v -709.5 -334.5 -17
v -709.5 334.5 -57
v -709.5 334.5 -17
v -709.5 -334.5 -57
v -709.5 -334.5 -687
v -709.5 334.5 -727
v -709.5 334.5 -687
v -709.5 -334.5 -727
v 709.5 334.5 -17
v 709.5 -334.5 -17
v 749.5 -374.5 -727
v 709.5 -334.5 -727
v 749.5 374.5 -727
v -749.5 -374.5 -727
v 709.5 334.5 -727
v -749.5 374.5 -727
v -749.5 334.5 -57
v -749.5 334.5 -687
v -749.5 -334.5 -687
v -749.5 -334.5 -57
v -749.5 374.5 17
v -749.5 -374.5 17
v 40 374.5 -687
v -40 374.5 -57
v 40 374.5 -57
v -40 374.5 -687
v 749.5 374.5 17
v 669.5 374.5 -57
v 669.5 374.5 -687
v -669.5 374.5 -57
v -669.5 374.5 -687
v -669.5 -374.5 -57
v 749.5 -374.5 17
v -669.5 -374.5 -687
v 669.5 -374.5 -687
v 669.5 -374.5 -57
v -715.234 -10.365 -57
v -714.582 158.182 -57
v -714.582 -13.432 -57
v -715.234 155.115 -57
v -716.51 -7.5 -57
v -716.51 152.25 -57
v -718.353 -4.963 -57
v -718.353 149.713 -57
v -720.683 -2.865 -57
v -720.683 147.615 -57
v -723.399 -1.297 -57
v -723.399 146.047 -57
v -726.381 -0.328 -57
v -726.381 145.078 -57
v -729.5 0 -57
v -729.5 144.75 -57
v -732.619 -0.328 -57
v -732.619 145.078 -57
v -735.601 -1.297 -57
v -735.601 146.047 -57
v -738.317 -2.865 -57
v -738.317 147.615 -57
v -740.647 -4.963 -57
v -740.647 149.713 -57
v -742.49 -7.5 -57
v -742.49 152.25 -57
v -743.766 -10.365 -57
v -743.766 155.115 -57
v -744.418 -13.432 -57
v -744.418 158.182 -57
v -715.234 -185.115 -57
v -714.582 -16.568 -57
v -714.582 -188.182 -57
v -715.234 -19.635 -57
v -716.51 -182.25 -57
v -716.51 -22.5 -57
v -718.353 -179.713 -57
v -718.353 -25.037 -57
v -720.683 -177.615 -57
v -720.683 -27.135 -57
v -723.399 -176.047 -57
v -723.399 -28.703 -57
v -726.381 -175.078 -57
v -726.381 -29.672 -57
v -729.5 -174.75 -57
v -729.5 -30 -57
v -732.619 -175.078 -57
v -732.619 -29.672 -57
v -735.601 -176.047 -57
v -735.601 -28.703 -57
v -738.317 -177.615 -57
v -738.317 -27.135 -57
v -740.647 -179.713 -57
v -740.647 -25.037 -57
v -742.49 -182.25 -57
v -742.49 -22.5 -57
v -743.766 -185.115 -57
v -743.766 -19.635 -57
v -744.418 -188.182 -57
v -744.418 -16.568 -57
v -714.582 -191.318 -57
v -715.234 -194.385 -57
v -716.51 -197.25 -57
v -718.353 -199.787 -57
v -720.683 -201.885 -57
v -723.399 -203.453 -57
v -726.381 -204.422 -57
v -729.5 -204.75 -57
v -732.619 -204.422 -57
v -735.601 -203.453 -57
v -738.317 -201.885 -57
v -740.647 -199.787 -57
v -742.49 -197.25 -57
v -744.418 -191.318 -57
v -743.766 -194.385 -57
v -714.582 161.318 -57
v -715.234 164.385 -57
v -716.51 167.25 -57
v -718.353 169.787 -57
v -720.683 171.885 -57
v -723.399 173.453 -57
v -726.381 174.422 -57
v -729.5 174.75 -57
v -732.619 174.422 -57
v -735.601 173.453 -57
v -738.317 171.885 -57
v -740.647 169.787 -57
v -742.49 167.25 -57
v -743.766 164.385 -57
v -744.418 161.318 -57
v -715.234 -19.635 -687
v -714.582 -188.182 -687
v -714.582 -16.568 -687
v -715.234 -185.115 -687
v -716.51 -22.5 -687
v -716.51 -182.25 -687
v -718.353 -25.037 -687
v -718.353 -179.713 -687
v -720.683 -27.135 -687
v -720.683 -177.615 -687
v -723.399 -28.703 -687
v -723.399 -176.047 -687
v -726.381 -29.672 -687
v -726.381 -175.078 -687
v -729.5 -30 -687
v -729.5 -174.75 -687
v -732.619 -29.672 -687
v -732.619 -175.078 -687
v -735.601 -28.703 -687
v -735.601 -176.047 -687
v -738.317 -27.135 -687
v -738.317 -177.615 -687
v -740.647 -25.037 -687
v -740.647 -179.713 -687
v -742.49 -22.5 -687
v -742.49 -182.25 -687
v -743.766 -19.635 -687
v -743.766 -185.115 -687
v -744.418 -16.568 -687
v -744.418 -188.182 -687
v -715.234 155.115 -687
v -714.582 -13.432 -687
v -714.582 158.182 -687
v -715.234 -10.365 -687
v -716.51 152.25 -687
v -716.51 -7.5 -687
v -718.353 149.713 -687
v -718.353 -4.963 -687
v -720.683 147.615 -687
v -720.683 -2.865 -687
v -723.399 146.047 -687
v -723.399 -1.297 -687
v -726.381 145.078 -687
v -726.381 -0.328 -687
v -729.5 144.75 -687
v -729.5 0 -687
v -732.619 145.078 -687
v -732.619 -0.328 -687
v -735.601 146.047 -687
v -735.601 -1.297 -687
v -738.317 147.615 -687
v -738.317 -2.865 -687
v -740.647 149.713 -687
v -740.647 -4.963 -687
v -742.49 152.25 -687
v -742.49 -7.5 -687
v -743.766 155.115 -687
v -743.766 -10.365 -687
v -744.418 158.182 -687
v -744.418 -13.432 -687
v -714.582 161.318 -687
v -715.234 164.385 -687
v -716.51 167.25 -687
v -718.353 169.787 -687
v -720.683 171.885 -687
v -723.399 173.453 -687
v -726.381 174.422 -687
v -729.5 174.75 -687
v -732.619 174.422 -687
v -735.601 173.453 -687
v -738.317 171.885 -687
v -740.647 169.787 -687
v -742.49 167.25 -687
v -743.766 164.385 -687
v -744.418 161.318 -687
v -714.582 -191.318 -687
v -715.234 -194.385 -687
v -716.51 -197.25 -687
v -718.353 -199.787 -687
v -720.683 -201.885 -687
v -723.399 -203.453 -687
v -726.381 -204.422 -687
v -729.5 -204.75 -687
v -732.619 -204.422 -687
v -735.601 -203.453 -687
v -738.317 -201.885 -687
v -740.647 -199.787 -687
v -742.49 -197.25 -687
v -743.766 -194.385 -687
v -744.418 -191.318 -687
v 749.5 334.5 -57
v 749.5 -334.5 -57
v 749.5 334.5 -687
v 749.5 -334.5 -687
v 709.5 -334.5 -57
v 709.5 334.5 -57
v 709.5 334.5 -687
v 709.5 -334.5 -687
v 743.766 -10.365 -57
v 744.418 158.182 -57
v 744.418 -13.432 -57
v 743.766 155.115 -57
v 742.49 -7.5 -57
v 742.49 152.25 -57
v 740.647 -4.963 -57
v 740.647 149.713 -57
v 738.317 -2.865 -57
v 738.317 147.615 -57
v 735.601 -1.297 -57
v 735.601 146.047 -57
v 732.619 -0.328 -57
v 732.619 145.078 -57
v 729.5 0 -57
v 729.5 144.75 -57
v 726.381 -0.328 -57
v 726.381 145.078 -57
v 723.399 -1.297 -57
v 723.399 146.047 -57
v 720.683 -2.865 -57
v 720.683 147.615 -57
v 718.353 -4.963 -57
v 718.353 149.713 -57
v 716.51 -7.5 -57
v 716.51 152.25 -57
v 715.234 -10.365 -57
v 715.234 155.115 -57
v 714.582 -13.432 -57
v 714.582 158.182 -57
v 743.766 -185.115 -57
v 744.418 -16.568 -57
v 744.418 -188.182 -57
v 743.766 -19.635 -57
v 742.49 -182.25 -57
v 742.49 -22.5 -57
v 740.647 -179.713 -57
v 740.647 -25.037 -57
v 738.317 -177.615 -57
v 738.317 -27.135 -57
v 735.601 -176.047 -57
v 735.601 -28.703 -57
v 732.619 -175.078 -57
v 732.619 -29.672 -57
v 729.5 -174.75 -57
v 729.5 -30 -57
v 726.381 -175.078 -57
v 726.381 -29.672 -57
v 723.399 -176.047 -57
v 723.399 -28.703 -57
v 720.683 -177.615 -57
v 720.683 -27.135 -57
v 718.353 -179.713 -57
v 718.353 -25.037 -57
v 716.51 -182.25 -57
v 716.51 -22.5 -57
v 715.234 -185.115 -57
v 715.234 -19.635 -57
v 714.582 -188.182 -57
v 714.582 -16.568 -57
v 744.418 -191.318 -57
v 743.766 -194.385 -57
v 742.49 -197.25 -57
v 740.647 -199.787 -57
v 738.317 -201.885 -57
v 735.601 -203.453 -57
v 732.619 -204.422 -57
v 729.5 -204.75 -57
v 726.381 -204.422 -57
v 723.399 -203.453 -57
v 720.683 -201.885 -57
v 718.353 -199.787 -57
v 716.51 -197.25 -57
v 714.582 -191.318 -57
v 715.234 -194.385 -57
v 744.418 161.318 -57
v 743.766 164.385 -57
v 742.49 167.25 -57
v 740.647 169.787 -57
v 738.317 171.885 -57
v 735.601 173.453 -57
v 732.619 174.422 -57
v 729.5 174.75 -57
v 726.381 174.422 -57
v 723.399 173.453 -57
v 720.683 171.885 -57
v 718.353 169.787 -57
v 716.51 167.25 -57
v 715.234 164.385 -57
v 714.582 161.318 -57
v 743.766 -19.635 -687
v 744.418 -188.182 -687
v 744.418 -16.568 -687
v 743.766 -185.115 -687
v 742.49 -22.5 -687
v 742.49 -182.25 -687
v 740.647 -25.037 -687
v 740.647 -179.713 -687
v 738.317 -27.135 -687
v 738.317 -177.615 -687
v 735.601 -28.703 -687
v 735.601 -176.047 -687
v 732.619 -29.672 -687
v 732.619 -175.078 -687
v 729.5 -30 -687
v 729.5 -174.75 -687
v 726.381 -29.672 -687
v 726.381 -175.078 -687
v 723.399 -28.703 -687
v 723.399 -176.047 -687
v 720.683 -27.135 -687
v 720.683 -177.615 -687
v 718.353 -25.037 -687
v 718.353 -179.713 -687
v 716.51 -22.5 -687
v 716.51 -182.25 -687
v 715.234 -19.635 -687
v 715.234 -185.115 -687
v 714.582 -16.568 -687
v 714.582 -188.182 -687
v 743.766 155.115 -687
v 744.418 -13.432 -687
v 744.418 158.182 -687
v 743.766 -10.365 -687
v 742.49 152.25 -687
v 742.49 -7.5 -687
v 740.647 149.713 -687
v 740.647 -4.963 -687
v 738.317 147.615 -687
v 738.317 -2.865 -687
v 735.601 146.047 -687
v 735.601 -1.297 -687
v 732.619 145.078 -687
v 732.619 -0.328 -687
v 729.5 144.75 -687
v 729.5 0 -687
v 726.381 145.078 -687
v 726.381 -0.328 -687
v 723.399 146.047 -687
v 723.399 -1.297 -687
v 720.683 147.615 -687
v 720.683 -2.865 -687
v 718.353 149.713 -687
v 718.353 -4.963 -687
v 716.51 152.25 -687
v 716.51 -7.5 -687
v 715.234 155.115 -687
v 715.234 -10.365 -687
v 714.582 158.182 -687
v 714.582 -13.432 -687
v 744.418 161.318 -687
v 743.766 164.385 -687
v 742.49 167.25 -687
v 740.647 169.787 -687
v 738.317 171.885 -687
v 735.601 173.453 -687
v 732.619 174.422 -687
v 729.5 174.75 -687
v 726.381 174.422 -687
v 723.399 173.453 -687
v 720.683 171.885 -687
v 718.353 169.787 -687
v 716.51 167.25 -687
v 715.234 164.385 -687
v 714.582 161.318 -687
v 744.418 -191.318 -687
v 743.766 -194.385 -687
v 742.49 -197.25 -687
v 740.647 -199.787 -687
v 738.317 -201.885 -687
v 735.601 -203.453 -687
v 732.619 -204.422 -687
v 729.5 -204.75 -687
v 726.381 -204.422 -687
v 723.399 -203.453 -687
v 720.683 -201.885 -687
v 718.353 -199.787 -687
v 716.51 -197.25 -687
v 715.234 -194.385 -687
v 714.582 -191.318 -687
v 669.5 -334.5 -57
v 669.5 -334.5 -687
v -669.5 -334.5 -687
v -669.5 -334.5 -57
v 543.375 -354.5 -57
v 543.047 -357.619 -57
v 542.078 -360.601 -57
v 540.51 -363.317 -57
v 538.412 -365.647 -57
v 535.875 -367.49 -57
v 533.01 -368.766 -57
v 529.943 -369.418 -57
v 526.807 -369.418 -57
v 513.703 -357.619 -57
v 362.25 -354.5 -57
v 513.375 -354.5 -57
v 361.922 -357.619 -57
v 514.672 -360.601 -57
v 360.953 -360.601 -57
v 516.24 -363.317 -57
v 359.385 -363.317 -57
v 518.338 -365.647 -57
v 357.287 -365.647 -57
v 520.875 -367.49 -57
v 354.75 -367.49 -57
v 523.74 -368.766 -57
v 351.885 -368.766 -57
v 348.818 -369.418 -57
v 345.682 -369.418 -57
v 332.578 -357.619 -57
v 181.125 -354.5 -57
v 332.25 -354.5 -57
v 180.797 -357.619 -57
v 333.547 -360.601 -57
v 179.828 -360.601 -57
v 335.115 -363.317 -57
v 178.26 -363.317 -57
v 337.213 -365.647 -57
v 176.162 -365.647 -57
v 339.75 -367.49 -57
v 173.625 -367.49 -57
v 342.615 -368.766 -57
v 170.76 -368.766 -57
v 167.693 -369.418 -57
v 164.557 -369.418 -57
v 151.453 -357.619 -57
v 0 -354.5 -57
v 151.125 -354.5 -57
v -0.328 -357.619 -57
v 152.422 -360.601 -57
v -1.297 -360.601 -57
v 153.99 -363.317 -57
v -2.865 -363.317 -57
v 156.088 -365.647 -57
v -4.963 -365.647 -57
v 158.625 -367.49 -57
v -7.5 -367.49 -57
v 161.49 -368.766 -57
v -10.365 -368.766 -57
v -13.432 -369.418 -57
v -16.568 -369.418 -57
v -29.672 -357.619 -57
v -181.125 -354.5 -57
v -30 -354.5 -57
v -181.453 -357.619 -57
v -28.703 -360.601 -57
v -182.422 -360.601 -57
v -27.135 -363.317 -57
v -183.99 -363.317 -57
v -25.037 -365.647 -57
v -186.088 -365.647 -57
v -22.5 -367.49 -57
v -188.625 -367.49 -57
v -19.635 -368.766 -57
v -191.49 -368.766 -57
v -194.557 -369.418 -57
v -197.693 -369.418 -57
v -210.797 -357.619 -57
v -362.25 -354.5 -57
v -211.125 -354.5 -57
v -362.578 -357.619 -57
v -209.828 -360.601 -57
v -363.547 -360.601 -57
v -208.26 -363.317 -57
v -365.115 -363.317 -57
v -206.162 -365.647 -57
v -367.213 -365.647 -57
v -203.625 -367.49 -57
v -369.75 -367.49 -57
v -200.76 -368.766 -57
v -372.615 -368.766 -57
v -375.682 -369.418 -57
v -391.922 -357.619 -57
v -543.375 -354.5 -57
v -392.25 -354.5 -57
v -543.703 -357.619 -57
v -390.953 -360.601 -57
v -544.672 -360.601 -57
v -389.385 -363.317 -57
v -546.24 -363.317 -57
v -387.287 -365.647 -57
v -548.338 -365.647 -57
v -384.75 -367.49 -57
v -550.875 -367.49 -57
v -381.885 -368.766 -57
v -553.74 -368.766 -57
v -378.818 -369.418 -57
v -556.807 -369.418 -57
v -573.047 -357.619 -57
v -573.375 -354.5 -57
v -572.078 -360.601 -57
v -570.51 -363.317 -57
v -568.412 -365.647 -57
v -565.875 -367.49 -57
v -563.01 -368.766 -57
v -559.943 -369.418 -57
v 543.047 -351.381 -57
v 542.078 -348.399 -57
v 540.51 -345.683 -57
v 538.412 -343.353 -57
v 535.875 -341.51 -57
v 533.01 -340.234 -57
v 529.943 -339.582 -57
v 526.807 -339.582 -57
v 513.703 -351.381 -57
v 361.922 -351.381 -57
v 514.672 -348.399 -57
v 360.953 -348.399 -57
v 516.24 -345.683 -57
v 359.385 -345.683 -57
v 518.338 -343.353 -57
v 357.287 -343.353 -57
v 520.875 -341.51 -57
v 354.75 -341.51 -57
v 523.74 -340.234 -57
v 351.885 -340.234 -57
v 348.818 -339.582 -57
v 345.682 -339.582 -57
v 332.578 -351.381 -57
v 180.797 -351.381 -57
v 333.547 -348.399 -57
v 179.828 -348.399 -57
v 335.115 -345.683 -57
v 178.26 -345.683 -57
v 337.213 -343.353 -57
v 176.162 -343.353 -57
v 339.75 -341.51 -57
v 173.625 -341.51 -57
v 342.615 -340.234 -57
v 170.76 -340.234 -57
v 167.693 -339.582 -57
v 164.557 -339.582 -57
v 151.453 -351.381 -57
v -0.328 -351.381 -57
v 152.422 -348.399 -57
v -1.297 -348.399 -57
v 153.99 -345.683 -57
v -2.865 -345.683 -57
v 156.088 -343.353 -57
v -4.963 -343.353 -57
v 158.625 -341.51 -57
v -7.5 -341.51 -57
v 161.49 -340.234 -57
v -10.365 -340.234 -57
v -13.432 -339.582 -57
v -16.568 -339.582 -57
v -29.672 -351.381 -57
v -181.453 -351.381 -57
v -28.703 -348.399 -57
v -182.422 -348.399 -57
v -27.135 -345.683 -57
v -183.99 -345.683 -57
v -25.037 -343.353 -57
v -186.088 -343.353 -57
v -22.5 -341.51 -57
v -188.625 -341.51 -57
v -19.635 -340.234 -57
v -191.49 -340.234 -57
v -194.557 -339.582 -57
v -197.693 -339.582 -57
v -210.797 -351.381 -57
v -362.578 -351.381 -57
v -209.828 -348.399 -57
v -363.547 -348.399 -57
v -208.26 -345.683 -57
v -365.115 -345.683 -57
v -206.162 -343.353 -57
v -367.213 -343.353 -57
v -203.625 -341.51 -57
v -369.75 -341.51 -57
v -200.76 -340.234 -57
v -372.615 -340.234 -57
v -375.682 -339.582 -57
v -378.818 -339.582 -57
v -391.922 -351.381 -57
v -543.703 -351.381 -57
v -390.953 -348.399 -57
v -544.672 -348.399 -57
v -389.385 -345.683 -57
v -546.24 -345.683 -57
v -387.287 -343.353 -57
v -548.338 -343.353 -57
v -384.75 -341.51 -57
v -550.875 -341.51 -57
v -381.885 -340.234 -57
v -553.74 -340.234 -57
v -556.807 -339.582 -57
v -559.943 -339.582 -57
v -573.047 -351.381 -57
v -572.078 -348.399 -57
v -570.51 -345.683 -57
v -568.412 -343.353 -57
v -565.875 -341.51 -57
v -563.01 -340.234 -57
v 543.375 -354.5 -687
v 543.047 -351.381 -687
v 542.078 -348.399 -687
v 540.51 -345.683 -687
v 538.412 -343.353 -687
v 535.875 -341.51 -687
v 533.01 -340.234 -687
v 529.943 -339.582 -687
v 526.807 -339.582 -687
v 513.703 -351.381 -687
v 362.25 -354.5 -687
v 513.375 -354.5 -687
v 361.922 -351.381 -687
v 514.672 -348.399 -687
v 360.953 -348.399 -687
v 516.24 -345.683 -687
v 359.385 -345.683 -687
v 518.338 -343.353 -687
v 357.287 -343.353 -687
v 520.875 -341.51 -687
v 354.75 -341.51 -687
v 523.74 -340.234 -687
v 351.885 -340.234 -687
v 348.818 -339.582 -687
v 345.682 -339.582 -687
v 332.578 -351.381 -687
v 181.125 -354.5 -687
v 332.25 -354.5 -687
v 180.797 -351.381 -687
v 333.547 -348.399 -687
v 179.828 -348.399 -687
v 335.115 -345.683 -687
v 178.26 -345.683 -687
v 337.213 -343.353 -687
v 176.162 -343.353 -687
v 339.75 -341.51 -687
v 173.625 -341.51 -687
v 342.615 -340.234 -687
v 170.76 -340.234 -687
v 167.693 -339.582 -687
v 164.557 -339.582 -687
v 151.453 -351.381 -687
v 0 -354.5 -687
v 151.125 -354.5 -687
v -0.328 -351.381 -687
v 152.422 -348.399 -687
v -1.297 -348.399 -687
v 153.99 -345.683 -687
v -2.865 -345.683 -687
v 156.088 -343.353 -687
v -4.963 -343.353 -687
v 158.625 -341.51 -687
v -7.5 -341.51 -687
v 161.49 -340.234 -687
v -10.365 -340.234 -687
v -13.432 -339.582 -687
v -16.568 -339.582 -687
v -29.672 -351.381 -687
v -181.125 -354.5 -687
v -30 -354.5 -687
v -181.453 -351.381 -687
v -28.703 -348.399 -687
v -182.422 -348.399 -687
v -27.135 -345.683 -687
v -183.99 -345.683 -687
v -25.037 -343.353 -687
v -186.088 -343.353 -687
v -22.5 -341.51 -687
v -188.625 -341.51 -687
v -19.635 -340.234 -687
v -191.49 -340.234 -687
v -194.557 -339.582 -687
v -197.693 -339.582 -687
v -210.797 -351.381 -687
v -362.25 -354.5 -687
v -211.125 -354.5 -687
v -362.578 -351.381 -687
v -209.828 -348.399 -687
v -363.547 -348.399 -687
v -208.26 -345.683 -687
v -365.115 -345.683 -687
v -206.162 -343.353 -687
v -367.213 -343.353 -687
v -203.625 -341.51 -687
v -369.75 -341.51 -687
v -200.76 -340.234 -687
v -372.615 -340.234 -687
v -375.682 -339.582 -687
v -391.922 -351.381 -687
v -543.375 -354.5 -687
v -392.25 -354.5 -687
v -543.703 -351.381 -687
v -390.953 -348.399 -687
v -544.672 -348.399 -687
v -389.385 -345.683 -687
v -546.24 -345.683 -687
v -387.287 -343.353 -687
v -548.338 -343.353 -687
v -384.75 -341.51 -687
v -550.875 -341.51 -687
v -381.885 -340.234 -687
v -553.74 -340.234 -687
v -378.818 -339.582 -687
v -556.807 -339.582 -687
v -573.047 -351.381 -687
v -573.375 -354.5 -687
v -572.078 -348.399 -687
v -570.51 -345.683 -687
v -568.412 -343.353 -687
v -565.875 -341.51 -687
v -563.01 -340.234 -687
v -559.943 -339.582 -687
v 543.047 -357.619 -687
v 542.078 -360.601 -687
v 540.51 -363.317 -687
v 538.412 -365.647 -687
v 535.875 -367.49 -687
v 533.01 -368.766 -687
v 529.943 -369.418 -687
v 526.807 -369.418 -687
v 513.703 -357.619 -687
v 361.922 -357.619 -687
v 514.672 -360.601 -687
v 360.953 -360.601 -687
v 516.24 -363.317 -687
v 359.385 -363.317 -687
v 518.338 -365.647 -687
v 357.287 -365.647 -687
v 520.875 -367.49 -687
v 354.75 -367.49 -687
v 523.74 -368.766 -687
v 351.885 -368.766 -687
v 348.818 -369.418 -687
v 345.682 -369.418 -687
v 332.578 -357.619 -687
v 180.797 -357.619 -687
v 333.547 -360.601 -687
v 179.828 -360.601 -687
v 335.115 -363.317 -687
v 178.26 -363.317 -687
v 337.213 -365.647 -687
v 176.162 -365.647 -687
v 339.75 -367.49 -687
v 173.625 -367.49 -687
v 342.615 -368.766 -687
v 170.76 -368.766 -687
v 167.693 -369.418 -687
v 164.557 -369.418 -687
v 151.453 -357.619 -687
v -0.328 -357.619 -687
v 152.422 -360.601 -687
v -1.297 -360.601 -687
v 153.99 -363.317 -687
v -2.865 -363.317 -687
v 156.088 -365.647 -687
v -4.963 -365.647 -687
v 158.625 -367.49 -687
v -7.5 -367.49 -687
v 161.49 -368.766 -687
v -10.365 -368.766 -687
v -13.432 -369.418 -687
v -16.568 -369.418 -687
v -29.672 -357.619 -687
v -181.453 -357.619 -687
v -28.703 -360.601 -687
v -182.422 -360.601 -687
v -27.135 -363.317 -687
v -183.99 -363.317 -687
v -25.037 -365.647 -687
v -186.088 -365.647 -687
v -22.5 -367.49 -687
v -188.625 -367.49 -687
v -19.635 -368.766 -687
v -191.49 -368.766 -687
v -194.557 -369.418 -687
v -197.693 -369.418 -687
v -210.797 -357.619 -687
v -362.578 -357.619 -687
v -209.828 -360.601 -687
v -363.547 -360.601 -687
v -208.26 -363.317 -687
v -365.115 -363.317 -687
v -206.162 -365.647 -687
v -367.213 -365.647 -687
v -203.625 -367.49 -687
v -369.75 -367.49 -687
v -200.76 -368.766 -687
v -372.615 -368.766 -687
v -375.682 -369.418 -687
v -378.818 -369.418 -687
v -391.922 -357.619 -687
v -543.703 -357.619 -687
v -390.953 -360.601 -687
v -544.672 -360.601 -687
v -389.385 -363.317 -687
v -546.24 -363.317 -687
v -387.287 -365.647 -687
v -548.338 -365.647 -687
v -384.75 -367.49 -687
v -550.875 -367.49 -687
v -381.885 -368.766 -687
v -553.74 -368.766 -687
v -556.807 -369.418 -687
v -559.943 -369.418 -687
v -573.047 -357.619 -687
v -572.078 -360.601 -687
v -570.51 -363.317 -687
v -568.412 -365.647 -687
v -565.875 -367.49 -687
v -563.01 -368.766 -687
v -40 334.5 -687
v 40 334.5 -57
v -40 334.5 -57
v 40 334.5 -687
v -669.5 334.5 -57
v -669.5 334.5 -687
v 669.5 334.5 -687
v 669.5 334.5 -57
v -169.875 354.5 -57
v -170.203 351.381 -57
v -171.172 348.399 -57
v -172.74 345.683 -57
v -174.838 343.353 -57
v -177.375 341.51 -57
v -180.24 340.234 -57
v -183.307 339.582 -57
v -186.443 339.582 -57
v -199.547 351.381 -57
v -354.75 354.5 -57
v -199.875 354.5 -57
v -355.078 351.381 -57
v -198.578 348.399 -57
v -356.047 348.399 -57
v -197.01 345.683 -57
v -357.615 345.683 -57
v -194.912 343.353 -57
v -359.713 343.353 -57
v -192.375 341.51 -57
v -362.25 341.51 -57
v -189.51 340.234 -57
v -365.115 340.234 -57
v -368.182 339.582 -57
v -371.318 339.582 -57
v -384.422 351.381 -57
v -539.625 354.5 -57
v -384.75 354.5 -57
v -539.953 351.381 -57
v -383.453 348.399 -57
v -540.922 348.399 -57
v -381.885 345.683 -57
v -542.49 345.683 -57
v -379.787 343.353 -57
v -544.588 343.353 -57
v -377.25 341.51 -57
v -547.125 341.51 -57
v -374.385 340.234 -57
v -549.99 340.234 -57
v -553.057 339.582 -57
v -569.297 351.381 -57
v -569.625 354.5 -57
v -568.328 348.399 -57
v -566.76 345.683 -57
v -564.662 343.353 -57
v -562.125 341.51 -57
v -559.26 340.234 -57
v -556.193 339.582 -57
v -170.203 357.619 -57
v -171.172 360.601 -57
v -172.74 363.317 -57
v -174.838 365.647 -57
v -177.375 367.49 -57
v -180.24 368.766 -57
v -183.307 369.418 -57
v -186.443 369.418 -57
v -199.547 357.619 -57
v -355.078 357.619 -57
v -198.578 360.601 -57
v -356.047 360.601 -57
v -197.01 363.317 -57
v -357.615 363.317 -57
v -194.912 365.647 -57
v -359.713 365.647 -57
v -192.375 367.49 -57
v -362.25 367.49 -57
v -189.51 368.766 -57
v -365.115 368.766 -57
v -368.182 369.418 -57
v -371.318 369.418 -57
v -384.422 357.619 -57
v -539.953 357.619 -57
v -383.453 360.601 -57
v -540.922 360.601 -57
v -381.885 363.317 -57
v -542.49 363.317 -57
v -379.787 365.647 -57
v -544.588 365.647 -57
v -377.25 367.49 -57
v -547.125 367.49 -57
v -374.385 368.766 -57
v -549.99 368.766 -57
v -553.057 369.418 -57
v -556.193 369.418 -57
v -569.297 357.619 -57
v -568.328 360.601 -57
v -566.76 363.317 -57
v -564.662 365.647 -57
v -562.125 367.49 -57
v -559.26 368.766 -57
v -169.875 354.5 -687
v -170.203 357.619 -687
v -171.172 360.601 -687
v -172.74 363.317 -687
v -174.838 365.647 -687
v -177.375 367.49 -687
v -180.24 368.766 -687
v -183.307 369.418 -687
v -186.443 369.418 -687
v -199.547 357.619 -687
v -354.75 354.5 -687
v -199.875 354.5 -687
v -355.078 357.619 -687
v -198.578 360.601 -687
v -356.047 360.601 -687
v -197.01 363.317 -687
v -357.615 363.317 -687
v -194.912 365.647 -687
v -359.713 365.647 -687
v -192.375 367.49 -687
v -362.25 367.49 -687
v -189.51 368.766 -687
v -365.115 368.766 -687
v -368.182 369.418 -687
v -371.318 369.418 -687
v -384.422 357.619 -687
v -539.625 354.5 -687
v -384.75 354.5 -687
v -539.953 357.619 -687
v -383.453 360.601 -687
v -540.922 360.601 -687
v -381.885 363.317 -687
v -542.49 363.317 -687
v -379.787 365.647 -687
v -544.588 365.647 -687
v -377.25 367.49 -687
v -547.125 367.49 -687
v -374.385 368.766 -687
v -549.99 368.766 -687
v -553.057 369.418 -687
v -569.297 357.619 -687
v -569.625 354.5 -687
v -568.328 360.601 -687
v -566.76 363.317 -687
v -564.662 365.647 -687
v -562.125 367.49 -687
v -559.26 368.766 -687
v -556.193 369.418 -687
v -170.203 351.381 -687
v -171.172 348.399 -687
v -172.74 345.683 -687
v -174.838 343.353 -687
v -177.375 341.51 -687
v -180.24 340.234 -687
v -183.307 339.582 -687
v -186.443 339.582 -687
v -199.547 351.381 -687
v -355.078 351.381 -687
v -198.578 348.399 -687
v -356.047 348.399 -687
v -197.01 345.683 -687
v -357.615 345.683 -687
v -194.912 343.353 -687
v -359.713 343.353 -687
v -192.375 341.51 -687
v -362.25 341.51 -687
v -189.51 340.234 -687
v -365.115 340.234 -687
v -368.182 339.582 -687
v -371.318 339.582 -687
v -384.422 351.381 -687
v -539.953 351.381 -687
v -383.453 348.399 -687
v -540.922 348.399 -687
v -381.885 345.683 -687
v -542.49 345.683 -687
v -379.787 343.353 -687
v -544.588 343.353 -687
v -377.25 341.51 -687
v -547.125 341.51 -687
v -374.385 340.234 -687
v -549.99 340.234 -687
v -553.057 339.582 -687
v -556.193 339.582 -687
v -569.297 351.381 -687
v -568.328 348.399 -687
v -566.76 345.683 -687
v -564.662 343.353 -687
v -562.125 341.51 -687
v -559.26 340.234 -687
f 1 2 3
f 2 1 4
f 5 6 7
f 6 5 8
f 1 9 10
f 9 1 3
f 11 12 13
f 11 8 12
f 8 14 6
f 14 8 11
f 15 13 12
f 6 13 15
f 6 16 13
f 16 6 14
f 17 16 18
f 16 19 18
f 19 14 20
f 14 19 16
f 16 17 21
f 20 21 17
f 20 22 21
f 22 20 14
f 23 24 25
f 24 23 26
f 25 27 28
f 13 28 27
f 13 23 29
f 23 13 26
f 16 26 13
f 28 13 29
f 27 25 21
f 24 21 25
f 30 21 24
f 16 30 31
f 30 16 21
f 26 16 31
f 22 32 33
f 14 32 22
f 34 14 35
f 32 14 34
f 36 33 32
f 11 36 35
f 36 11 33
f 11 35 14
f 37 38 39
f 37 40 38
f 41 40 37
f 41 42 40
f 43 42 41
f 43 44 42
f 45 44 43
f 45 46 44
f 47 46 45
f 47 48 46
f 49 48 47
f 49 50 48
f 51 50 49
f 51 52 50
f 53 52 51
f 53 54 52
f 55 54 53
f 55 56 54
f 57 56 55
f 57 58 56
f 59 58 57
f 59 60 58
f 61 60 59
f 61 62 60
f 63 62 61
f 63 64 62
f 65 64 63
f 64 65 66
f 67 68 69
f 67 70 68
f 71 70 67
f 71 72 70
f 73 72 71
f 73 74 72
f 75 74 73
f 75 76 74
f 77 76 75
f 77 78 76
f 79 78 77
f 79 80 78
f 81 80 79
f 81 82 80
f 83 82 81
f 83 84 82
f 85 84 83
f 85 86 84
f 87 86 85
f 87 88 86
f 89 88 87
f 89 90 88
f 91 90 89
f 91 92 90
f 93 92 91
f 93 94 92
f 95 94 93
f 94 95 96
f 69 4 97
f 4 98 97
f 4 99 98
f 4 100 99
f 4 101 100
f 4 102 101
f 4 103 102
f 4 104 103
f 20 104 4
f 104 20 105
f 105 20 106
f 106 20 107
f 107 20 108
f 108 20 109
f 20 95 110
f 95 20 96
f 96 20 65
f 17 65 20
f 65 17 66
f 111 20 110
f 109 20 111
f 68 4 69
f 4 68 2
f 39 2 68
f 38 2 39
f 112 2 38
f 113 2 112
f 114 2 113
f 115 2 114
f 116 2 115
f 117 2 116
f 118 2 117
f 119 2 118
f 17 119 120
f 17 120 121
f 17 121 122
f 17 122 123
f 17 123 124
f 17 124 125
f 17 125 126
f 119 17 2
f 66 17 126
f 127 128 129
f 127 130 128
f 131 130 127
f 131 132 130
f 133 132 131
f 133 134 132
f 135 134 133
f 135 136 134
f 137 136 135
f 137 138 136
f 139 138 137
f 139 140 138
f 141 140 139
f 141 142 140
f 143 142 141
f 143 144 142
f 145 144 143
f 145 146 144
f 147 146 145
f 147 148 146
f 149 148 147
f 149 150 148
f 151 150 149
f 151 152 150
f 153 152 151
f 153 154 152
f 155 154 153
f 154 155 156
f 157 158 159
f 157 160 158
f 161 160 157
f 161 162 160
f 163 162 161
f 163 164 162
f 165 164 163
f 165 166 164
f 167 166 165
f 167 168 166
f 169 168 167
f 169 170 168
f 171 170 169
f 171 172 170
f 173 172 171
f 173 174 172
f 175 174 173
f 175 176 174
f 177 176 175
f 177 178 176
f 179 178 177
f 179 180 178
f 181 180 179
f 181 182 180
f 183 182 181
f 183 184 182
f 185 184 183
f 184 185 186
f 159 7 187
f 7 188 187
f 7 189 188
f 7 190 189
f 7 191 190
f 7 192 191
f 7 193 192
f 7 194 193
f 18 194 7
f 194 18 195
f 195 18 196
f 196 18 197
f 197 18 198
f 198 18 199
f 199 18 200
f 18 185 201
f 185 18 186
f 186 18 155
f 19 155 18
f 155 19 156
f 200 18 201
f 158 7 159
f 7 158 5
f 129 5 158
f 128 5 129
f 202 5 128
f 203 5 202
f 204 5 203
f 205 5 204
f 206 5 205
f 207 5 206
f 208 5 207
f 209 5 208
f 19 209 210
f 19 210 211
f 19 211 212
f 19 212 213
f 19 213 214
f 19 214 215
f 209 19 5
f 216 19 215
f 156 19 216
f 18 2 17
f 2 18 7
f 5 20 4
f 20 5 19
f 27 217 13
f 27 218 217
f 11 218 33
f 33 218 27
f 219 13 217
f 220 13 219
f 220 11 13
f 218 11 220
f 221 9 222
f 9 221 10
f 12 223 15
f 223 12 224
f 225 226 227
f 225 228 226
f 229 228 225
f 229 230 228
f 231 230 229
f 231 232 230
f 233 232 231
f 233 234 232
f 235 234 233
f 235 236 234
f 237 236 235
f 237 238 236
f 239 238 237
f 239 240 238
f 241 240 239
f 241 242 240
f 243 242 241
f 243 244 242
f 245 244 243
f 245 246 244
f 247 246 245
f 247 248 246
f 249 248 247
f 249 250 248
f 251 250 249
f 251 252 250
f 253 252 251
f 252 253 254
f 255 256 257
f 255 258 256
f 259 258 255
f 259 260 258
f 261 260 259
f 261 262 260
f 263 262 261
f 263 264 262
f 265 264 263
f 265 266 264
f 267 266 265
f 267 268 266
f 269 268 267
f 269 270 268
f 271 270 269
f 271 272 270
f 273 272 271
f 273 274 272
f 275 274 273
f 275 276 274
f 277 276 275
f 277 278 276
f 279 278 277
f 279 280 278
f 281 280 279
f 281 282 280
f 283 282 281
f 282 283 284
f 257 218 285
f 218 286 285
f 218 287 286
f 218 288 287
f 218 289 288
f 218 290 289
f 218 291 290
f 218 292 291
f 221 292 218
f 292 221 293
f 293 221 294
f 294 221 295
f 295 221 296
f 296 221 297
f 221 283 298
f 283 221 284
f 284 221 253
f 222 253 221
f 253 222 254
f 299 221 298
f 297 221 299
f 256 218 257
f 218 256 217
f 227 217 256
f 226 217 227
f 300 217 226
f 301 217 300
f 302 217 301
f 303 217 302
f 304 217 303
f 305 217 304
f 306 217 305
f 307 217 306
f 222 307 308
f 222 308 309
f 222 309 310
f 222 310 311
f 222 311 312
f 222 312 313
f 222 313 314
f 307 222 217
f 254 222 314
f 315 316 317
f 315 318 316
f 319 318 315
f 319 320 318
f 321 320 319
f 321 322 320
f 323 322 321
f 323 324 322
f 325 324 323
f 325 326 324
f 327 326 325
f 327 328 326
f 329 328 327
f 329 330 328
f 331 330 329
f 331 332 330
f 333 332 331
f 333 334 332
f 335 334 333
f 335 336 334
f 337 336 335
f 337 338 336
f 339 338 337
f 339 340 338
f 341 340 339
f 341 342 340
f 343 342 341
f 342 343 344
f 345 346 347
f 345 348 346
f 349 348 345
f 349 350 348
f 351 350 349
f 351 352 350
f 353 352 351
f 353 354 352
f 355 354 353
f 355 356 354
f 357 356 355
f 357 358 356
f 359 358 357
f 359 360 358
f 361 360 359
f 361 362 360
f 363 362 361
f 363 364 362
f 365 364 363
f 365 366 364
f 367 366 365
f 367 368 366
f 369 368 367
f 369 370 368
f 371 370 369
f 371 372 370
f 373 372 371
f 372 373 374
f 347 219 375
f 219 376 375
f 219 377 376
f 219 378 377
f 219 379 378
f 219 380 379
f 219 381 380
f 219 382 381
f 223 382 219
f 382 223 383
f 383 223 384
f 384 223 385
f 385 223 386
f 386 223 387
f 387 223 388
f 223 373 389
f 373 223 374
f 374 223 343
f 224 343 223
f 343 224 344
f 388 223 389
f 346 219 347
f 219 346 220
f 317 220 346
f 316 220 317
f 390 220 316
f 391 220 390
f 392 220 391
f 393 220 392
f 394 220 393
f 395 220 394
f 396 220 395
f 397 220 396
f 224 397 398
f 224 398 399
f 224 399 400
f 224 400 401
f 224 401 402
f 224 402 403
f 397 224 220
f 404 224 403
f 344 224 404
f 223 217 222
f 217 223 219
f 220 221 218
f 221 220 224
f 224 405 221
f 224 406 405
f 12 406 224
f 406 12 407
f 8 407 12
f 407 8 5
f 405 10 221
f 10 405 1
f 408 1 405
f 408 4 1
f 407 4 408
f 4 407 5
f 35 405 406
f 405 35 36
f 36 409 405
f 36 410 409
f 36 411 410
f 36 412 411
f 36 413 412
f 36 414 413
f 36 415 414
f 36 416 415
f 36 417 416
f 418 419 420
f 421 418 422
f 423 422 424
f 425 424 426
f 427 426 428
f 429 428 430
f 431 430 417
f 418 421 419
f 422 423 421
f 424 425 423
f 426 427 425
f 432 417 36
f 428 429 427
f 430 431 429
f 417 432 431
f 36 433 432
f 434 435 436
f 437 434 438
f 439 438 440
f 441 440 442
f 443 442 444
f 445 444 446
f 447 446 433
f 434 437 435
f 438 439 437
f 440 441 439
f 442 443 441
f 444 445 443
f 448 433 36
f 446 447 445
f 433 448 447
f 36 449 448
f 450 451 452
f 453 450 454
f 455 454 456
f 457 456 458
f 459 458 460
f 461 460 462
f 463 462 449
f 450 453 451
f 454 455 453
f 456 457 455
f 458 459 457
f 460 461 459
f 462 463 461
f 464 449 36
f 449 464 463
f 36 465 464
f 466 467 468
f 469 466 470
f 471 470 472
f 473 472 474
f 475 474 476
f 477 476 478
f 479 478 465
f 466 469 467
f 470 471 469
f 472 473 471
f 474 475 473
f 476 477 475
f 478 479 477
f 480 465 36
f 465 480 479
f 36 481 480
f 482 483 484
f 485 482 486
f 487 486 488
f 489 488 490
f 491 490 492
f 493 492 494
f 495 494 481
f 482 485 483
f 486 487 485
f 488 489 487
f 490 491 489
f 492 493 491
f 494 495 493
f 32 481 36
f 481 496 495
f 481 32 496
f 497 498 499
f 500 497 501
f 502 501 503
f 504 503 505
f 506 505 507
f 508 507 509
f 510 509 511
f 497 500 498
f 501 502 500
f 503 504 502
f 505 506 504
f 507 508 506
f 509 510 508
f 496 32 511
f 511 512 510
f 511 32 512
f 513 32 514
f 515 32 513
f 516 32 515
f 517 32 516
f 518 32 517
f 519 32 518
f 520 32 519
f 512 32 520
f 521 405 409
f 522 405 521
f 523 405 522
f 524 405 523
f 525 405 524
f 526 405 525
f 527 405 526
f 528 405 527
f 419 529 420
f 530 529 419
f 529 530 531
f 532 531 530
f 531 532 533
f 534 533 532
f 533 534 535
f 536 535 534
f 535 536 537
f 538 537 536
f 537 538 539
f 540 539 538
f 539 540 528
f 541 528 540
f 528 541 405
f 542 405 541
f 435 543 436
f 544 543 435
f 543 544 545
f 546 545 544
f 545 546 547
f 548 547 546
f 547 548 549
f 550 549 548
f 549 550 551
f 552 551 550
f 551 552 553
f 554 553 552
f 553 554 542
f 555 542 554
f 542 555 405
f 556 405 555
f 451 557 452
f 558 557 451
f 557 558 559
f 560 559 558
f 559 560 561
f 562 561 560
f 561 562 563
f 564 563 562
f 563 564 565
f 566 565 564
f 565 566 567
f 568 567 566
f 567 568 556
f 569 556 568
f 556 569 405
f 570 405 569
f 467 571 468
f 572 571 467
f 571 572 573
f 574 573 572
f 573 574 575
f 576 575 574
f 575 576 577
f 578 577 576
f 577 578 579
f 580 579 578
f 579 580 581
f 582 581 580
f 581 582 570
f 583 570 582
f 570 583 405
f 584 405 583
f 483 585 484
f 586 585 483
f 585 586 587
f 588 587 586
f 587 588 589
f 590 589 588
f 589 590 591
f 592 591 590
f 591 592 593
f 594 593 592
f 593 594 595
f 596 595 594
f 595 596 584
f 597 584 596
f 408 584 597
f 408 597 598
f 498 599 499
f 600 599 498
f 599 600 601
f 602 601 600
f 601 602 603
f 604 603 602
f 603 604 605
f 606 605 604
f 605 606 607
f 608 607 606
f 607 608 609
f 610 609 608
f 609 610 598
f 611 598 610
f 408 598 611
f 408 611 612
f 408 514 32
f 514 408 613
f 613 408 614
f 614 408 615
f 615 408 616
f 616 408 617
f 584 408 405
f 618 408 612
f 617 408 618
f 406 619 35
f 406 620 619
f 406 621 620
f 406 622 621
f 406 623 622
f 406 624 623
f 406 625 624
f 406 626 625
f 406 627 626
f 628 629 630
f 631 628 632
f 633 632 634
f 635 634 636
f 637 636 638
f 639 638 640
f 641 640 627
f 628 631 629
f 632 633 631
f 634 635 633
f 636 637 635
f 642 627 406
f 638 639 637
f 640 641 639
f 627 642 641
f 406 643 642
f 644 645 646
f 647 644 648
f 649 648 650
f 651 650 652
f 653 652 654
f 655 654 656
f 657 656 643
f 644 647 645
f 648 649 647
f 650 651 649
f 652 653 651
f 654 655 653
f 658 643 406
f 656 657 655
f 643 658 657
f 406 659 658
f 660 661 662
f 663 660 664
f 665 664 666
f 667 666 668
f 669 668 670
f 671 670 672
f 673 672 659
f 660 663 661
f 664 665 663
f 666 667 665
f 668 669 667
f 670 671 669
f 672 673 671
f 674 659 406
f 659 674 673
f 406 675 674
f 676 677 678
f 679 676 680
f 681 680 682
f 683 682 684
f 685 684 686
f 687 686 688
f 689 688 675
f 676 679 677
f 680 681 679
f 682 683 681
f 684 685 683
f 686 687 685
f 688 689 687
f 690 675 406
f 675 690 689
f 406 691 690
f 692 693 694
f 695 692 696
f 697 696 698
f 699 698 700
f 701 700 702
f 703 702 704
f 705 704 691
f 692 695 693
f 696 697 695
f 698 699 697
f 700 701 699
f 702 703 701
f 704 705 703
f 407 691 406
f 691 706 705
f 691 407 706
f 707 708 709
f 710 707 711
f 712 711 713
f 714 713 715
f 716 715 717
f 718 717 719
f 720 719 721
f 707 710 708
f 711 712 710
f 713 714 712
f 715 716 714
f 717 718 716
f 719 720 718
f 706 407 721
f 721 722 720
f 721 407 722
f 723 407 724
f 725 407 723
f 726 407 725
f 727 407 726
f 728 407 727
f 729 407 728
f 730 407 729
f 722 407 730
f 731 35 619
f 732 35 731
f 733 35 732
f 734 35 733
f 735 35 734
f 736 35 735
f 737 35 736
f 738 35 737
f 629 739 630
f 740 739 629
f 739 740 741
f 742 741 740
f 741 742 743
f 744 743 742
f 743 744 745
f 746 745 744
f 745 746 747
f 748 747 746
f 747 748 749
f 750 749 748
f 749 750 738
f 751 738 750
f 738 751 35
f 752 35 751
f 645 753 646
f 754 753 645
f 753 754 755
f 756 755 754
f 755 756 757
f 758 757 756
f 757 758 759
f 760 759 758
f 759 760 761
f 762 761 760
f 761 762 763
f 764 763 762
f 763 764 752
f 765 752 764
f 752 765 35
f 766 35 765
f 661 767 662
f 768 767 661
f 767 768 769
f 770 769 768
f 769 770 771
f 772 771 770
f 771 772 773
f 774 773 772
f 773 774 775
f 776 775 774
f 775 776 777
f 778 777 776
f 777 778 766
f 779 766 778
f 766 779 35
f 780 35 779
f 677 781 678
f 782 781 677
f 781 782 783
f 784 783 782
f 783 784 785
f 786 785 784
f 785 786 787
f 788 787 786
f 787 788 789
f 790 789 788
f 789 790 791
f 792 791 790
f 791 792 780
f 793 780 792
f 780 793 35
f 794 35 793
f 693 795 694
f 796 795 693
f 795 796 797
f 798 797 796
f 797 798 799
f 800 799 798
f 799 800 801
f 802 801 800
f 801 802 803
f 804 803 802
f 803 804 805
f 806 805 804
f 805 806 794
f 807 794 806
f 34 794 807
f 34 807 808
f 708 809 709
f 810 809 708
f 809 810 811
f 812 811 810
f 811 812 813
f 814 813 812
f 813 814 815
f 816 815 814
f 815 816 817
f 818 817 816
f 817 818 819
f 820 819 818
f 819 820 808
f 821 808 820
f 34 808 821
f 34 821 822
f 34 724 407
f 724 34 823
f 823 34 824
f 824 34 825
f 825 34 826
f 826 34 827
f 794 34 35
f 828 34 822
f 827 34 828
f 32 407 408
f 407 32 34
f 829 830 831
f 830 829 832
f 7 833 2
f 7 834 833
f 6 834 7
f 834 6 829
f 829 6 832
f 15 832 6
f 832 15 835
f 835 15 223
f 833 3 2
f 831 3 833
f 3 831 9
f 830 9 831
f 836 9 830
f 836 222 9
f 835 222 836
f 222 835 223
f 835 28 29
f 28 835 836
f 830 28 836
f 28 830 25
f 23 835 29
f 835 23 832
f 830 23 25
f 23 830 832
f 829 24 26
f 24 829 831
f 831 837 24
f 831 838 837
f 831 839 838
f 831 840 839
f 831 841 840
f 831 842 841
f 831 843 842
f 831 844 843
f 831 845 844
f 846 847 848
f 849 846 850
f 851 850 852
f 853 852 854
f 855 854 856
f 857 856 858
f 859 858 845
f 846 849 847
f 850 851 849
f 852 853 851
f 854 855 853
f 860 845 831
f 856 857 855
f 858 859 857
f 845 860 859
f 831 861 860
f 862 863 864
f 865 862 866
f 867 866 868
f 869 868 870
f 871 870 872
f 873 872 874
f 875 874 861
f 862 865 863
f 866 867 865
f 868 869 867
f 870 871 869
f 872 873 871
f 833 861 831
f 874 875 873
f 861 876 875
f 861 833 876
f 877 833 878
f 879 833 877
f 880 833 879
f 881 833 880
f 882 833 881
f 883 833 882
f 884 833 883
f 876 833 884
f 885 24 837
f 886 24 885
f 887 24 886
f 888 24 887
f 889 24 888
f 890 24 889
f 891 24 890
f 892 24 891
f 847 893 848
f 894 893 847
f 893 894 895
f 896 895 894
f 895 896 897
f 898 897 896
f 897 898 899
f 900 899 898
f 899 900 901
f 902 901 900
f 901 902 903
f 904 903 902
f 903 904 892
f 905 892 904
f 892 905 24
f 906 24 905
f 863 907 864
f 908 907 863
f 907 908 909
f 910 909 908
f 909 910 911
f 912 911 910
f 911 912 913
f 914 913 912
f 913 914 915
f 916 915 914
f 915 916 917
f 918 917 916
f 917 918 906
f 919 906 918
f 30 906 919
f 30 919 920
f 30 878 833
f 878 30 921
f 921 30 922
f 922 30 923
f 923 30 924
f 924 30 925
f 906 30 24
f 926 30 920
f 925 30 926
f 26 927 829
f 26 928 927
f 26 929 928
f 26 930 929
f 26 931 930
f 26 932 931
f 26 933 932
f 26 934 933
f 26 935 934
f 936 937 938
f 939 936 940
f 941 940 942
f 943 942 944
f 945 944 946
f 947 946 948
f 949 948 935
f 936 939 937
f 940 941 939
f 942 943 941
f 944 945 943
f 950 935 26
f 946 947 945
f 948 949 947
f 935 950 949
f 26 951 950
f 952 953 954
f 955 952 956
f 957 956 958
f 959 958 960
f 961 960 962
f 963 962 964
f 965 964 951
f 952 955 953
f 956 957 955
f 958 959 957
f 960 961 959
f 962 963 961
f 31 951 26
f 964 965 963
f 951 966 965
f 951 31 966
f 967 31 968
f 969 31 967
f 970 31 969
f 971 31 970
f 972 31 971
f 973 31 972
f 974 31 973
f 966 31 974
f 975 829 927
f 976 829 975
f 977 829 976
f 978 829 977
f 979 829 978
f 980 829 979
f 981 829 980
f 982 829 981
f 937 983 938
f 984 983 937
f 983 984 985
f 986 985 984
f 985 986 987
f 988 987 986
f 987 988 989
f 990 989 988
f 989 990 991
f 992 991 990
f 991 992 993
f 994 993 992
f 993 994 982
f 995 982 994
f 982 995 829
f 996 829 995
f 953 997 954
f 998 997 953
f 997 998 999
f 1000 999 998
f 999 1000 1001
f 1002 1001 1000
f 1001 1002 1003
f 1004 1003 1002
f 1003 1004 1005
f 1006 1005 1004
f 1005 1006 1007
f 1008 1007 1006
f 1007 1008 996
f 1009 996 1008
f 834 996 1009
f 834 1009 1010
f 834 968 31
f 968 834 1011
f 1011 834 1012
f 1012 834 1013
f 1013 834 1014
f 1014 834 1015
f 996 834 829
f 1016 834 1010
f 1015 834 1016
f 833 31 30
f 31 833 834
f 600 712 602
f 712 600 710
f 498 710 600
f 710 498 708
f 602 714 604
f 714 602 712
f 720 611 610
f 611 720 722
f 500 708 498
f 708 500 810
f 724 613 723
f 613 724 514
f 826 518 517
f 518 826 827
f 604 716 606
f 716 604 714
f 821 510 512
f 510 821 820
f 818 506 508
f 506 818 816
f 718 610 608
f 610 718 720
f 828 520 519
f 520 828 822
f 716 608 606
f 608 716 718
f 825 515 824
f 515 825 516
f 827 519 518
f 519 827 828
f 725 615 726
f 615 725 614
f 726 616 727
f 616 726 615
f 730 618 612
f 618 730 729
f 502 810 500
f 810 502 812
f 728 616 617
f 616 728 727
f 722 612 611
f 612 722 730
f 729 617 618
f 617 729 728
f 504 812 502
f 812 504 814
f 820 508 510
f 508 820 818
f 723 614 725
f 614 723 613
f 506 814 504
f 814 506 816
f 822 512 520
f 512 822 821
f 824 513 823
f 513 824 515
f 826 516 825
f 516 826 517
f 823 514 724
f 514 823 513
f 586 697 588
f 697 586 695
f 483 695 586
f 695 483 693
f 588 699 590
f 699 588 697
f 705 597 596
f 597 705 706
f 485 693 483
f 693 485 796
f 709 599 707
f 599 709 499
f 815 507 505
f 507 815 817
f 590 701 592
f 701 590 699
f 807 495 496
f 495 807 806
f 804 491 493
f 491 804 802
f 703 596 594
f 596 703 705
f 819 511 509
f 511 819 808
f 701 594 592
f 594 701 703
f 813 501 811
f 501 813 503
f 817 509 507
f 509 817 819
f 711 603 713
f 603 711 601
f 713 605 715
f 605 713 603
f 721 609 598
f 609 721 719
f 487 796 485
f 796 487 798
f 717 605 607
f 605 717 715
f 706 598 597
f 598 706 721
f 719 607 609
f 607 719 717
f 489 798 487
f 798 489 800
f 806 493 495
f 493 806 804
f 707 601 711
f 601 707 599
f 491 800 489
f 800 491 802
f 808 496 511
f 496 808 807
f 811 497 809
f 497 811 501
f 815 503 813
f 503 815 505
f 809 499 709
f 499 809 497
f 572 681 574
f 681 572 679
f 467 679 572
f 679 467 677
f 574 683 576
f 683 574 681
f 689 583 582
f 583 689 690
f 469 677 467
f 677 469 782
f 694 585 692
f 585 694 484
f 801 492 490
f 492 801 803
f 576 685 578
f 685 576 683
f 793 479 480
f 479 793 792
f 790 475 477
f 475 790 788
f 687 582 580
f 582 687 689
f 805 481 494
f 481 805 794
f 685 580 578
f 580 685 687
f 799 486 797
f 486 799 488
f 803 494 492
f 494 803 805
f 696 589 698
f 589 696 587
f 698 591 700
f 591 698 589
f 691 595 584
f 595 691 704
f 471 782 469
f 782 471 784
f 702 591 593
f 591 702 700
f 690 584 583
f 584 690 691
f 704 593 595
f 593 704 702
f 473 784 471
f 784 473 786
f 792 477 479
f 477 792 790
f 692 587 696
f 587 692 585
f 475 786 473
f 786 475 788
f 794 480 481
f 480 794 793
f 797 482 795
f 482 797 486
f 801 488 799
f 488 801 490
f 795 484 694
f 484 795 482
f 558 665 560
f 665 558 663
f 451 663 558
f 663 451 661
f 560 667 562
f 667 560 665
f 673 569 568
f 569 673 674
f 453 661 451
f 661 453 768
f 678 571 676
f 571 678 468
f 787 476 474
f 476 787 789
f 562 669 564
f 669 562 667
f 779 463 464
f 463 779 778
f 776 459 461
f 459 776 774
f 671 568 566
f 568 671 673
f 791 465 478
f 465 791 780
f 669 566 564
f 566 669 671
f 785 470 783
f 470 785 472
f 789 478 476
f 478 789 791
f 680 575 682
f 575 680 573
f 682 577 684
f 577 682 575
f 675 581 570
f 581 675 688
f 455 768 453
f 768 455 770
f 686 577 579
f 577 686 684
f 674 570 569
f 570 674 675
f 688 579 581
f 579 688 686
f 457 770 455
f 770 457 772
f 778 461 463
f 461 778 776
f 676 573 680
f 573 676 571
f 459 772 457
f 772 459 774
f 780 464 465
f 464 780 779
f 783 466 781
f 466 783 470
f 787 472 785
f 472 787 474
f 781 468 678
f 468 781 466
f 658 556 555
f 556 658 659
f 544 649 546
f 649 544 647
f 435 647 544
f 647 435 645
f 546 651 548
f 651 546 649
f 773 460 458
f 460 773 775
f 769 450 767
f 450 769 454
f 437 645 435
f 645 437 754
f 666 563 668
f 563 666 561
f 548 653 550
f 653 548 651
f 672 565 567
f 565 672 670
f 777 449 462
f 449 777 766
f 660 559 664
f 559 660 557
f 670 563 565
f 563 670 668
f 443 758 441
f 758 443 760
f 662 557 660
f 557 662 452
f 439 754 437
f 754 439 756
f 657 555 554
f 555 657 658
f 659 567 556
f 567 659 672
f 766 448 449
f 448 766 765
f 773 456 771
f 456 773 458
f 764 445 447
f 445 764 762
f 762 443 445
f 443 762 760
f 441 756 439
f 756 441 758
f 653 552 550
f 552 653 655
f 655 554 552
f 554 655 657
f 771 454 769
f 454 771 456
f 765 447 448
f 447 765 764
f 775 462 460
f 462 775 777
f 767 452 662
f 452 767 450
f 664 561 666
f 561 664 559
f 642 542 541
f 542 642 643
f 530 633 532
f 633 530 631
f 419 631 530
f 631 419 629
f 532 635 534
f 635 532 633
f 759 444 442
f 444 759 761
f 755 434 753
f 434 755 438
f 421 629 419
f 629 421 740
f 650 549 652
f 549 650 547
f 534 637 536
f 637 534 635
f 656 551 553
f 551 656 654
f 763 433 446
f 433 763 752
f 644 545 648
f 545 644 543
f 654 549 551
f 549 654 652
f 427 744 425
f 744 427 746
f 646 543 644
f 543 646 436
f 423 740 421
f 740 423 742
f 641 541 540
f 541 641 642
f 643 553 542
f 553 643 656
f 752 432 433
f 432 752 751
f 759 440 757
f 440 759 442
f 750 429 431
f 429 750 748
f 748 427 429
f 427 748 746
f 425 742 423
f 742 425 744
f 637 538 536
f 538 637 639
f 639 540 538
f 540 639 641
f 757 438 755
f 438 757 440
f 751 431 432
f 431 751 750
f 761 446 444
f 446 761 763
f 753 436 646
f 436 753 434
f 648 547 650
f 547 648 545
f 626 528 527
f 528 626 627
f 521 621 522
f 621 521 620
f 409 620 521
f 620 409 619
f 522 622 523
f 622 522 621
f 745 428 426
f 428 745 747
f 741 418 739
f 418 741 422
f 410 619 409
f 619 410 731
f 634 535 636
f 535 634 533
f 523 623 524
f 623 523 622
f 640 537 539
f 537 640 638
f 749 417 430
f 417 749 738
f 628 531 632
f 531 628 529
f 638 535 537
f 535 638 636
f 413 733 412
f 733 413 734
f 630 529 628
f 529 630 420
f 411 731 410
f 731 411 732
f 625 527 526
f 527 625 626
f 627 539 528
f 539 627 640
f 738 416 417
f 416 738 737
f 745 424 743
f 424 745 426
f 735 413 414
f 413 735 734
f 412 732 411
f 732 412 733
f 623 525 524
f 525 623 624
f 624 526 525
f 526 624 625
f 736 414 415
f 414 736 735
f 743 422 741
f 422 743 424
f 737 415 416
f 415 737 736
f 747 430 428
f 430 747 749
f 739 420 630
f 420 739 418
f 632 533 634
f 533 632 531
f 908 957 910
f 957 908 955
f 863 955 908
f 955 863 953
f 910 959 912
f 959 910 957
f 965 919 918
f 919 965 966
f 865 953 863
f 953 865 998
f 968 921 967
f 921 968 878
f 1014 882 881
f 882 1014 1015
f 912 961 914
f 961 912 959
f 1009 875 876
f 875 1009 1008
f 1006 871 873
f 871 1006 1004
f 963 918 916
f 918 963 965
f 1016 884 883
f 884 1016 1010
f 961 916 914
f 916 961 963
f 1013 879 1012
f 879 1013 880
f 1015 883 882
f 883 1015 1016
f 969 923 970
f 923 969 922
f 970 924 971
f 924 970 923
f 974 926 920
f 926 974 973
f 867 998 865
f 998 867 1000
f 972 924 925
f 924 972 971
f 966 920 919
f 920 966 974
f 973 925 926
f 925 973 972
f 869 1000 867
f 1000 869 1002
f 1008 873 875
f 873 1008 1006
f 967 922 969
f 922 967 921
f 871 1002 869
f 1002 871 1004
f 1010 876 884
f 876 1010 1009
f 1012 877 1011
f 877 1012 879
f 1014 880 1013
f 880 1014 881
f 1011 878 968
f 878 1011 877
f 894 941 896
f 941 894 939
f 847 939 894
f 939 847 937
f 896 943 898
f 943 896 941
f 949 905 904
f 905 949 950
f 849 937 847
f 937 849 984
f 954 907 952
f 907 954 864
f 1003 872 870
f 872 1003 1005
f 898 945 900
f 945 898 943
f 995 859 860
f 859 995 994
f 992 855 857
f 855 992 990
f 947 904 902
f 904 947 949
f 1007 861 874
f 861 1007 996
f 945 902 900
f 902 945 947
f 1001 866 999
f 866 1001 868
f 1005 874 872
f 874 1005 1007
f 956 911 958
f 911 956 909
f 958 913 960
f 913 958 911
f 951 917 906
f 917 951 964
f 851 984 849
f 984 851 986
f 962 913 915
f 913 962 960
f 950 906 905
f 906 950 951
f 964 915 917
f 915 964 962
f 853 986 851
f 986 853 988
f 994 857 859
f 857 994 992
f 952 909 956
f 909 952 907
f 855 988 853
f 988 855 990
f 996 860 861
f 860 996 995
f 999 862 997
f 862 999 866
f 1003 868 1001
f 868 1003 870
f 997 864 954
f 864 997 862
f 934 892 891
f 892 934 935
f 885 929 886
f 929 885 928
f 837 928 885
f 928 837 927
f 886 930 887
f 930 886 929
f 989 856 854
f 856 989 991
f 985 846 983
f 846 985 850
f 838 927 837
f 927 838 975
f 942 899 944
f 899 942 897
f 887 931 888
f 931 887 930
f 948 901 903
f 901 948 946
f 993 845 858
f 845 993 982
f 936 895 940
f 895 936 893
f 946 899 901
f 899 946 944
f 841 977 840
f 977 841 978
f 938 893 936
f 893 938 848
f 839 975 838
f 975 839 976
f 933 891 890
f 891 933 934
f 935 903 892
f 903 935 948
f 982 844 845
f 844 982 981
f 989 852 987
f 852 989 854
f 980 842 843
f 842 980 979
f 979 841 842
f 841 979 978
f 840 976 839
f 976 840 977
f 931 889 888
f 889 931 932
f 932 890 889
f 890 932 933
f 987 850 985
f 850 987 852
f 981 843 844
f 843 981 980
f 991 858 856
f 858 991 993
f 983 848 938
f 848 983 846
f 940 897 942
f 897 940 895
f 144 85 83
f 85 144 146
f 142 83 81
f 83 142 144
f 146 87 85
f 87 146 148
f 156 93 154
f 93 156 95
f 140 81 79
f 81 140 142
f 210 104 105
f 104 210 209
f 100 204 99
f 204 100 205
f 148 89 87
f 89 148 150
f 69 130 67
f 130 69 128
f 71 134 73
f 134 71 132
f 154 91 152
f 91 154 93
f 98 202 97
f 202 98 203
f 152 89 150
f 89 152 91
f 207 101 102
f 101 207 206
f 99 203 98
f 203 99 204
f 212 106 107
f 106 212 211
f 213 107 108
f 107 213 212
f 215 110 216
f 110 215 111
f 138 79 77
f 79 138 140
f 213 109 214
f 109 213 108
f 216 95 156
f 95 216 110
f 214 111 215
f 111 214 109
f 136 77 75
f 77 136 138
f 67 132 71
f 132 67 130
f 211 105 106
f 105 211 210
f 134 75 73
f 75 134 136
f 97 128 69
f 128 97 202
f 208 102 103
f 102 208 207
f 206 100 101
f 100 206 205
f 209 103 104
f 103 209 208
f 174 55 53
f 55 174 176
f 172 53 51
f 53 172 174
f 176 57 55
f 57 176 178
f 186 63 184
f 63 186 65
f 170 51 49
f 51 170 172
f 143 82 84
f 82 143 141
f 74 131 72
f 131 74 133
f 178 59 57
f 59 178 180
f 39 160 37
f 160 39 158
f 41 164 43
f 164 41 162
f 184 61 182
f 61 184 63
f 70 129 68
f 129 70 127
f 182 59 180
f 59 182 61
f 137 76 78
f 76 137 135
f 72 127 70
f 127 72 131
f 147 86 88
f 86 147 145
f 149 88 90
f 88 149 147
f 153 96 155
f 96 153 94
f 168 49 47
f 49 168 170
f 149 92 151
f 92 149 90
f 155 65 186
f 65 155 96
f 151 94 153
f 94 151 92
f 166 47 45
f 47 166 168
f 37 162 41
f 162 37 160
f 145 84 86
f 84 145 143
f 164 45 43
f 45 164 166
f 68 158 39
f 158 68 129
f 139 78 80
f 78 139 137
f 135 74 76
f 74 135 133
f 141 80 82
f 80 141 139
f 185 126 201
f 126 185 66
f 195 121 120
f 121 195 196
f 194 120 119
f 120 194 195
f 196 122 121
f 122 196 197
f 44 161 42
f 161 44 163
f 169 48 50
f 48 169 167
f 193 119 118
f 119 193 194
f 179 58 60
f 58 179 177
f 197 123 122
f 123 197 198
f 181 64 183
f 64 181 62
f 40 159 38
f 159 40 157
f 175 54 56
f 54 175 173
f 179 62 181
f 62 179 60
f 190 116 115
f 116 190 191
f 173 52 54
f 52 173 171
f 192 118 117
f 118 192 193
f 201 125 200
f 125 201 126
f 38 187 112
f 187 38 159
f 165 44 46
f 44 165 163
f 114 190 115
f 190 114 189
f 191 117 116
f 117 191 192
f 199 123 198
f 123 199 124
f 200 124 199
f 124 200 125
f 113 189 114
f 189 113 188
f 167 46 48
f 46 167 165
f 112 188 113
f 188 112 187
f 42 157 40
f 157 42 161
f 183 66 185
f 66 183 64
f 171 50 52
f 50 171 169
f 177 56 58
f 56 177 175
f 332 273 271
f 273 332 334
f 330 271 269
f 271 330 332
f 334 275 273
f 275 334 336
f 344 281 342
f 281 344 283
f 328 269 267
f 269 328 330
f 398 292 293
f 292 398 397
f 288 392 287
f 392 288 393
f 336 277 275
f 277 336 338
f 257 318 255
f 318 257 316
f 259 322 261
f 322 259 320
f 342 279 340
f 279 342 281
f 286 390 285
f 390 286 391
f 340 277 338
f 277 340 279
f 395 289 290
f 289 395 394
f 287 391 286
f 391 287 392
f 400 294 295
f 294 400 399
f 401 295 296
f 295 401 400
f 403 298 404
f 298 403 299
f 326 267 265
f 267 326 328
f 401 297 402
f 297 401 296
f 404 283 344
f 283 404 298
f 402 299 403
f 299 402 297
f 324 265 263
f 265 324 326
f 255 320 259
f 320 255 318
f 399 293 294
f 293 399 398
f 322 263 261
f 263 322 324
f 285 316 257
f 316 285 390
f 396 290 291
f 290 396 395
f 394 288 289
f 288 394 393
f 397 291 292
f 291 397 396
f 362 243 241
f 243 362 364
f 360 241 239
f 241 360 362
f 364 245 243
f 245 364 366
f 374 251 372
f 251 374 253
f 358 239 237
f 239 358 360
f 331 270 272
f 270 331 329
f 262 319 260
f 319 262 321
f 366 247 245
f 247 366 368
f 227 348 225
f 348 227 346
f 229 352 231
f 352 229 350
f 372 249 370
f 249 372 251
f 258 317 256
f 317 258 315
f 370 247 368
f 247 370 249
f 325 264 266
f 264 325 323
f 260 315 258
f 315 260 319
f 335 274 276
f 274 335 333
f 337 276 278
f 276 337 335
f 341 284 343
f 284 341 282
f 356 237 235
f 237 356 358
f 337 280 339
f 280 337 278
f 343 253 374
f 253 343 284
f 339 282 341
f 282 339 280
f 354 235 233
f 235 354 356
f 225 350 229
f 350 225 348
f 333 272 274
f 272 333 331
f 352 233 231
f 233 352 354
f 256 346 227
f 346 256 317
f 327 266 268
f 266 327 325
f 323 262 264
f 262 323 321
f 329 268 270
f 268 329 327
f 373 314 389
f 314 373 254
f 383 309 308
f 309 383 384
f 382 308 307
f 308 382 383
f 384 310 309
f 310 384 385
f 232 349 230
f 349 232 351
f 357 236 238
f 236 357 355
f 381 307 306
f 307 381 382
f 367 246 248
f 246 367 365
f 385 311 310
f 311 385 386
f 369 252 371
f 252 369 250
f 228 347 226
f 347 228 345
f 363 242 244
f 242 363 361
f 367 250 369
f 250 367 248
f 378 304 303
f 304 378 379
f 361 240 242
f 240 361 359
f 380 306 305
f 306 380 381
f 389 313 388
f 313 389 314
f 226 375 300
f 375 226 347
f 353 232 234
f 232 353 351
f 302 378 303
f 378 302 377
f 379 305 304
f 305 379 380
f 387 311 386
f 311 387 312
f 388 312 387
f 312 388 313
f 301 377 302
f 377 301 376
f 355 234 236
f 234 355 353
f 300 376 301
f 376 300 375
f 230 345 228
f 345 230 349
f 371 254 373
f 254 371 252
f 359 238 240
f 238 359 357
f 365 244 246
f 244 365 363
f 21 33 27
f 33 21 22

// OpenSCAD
// Rozmery stolni desky v mm
dw=1499; // cca 150 cm   (sirka)
dd=749;  // cca  75 cm   (hloubka)
dh=34;   // cca   3.5 cm (vyska)

// cage frame width - tloustka ramu klece
cfw=40;

// cage height - vyska klece
ch=710; // 71 cm

// bar diameter - prumer tyce
bd=30; // adjustable, should be less than cfw

// bar spacing - vzdalenost mezi tycemi
bs=200; // adjustable

main();

module main() {
    union(){
        color("red") desk();
        left_side();
        right_side();
        back_side();

        color("yellow") front_side_door_frame();
        front_side_wall();

        // back side fill
        translate([0, -(dd/2 - cfw/2), -(ch/2 + dh/2)]) 
            fill_side(dw - 2*cfw, floor((dw - 2*cfw) / bs));

        // front side wall fill
        translate([-(dw/2 - cfw)/2,(dd - cfw)/2,-(ch/2 + dh/2)]) 
                fill_side(dw/2 - cfw, floor((dw/2 - cfw) / bs));

        // front side door fill
        // translate([+(dw/2 - cfw)/2,(dd - cfw)/2,-(ch/2 + dh/2)]) 
        //         fill_side(dw/2 - cfw, floor((dw/2 - cfw) / bs));

        // left side fill
        translate([-(dw/2 - cfw/2),0,-(ch/2 + dh/2)]) 
            rotate([0,0,90]) // Rotate to fill vertically 
                fill_side(dd - 2*cfw, floor((dd - 2*cfw) / bs));

        // right side fill
        translate([+(dw/2 - cfw/2),0,-(ch/2 + dh/2)]) 
            rotate([0,0,90]) // Rotate to fill vertically
                fill_side(dd - 2*cfw, floor((dd - 2*cfw) / bs));
    }
}

module desk() {
    cube([dw,dd,dh], center=true);
}

module front_side_door_frame() { 
    translate([(dw/2 - cfw)/2,(dd - cfw)/2,-(ch/2 + dh/2)]) 
        difference() {
            // Outer frame
            cube([dw/2 - cfw,cfw,ch], center=true);
            // Inner space (like small/big side)
            cube([dw/2 - cfw - cfw*2, cfw+1, ch-cfw*2], center=true);
        }
}

module front_side_wall() {
    translate([-(dw/2 - cfw)/2,(dd - cfw)/2,-(ch/2 + dh/2)]) 
        difference() {
            // Outer frame
            cube([dw/2 - cfw,cfw,ch], center=true);
            // Inner space (like small/big side)
            cube([dw/2 - cfw - cfw*2, cfw+1, ch-cfw*2], center=true);
        }
}

module left_side() {
    translate([-(dw/2 - cfw/2),0,-(ch/2 + dh/2)]) 
        cage_side_small();
}

module right_side() {
    translate([+(dw/2 - cfw/2),0,-(ch/2 + dh/2)]) 
        cage_side_small();
  
}

module back_side() {
    translate([0, -(dd/2 - cfw/2), -(ch/2 + dh/2)]) 
        cage_side_big();
}

module cage_side_small() {
    // Outer side
    difference() {
        // Outer frame
        cube([cfw,dd,ch], center=true);
        // Inner space
        cube([cfw+1, dd-cfw*2, ch-cfw*2], center=true);
    }
}

module cage_side_big() {
    difference() {
        // Outer frame
        cube([(dw - 2*cfw),cfw,ch], center=true);
        // Inner space
        cube([(dw - 2*cfw) -cfw*2, cfw+1, ch-cfw*2], center=true);
    }
}

// Fill cage side with vertical bars with spaces between computed based on max width and number of bars (first bar starts at the second position)
module fill_side(max_width, num_bars=0) {
    // Calculate number of bars if not specified
    if (num_bars == 0) {
        num_bars = floor(max_width / bs);
    }
    
    // Calculate spacing between bars
    spacing = (max_width - bd * num_bars) / (num_bars + 1);
    
    // Create vertical bars
    for (i = [0:num_bars-1]) {
        x_pos = -max_width/2 + spacing * (i + 1) + bd * i;
        vertical_bar(x_pos, 0);
    }    
}

module vertical_bar(x,y) {
    // Vertical cylindrical bar
    translate([x, y, 0]) {
        cylinder(h=ch, r=bd/2, center=true);
    }
}

// Make cube cage frame
module cage_frame() {
    difference() {
        // Outer frame
        cube([dw+cfw*2, dd+cfw*2, dh+cfw], center=true);
        // Inner space
        translate([cfw, cfw, 0])
            cube([dw-cfw*2, dd-cfw*2, dh], center=true);
    }
}
